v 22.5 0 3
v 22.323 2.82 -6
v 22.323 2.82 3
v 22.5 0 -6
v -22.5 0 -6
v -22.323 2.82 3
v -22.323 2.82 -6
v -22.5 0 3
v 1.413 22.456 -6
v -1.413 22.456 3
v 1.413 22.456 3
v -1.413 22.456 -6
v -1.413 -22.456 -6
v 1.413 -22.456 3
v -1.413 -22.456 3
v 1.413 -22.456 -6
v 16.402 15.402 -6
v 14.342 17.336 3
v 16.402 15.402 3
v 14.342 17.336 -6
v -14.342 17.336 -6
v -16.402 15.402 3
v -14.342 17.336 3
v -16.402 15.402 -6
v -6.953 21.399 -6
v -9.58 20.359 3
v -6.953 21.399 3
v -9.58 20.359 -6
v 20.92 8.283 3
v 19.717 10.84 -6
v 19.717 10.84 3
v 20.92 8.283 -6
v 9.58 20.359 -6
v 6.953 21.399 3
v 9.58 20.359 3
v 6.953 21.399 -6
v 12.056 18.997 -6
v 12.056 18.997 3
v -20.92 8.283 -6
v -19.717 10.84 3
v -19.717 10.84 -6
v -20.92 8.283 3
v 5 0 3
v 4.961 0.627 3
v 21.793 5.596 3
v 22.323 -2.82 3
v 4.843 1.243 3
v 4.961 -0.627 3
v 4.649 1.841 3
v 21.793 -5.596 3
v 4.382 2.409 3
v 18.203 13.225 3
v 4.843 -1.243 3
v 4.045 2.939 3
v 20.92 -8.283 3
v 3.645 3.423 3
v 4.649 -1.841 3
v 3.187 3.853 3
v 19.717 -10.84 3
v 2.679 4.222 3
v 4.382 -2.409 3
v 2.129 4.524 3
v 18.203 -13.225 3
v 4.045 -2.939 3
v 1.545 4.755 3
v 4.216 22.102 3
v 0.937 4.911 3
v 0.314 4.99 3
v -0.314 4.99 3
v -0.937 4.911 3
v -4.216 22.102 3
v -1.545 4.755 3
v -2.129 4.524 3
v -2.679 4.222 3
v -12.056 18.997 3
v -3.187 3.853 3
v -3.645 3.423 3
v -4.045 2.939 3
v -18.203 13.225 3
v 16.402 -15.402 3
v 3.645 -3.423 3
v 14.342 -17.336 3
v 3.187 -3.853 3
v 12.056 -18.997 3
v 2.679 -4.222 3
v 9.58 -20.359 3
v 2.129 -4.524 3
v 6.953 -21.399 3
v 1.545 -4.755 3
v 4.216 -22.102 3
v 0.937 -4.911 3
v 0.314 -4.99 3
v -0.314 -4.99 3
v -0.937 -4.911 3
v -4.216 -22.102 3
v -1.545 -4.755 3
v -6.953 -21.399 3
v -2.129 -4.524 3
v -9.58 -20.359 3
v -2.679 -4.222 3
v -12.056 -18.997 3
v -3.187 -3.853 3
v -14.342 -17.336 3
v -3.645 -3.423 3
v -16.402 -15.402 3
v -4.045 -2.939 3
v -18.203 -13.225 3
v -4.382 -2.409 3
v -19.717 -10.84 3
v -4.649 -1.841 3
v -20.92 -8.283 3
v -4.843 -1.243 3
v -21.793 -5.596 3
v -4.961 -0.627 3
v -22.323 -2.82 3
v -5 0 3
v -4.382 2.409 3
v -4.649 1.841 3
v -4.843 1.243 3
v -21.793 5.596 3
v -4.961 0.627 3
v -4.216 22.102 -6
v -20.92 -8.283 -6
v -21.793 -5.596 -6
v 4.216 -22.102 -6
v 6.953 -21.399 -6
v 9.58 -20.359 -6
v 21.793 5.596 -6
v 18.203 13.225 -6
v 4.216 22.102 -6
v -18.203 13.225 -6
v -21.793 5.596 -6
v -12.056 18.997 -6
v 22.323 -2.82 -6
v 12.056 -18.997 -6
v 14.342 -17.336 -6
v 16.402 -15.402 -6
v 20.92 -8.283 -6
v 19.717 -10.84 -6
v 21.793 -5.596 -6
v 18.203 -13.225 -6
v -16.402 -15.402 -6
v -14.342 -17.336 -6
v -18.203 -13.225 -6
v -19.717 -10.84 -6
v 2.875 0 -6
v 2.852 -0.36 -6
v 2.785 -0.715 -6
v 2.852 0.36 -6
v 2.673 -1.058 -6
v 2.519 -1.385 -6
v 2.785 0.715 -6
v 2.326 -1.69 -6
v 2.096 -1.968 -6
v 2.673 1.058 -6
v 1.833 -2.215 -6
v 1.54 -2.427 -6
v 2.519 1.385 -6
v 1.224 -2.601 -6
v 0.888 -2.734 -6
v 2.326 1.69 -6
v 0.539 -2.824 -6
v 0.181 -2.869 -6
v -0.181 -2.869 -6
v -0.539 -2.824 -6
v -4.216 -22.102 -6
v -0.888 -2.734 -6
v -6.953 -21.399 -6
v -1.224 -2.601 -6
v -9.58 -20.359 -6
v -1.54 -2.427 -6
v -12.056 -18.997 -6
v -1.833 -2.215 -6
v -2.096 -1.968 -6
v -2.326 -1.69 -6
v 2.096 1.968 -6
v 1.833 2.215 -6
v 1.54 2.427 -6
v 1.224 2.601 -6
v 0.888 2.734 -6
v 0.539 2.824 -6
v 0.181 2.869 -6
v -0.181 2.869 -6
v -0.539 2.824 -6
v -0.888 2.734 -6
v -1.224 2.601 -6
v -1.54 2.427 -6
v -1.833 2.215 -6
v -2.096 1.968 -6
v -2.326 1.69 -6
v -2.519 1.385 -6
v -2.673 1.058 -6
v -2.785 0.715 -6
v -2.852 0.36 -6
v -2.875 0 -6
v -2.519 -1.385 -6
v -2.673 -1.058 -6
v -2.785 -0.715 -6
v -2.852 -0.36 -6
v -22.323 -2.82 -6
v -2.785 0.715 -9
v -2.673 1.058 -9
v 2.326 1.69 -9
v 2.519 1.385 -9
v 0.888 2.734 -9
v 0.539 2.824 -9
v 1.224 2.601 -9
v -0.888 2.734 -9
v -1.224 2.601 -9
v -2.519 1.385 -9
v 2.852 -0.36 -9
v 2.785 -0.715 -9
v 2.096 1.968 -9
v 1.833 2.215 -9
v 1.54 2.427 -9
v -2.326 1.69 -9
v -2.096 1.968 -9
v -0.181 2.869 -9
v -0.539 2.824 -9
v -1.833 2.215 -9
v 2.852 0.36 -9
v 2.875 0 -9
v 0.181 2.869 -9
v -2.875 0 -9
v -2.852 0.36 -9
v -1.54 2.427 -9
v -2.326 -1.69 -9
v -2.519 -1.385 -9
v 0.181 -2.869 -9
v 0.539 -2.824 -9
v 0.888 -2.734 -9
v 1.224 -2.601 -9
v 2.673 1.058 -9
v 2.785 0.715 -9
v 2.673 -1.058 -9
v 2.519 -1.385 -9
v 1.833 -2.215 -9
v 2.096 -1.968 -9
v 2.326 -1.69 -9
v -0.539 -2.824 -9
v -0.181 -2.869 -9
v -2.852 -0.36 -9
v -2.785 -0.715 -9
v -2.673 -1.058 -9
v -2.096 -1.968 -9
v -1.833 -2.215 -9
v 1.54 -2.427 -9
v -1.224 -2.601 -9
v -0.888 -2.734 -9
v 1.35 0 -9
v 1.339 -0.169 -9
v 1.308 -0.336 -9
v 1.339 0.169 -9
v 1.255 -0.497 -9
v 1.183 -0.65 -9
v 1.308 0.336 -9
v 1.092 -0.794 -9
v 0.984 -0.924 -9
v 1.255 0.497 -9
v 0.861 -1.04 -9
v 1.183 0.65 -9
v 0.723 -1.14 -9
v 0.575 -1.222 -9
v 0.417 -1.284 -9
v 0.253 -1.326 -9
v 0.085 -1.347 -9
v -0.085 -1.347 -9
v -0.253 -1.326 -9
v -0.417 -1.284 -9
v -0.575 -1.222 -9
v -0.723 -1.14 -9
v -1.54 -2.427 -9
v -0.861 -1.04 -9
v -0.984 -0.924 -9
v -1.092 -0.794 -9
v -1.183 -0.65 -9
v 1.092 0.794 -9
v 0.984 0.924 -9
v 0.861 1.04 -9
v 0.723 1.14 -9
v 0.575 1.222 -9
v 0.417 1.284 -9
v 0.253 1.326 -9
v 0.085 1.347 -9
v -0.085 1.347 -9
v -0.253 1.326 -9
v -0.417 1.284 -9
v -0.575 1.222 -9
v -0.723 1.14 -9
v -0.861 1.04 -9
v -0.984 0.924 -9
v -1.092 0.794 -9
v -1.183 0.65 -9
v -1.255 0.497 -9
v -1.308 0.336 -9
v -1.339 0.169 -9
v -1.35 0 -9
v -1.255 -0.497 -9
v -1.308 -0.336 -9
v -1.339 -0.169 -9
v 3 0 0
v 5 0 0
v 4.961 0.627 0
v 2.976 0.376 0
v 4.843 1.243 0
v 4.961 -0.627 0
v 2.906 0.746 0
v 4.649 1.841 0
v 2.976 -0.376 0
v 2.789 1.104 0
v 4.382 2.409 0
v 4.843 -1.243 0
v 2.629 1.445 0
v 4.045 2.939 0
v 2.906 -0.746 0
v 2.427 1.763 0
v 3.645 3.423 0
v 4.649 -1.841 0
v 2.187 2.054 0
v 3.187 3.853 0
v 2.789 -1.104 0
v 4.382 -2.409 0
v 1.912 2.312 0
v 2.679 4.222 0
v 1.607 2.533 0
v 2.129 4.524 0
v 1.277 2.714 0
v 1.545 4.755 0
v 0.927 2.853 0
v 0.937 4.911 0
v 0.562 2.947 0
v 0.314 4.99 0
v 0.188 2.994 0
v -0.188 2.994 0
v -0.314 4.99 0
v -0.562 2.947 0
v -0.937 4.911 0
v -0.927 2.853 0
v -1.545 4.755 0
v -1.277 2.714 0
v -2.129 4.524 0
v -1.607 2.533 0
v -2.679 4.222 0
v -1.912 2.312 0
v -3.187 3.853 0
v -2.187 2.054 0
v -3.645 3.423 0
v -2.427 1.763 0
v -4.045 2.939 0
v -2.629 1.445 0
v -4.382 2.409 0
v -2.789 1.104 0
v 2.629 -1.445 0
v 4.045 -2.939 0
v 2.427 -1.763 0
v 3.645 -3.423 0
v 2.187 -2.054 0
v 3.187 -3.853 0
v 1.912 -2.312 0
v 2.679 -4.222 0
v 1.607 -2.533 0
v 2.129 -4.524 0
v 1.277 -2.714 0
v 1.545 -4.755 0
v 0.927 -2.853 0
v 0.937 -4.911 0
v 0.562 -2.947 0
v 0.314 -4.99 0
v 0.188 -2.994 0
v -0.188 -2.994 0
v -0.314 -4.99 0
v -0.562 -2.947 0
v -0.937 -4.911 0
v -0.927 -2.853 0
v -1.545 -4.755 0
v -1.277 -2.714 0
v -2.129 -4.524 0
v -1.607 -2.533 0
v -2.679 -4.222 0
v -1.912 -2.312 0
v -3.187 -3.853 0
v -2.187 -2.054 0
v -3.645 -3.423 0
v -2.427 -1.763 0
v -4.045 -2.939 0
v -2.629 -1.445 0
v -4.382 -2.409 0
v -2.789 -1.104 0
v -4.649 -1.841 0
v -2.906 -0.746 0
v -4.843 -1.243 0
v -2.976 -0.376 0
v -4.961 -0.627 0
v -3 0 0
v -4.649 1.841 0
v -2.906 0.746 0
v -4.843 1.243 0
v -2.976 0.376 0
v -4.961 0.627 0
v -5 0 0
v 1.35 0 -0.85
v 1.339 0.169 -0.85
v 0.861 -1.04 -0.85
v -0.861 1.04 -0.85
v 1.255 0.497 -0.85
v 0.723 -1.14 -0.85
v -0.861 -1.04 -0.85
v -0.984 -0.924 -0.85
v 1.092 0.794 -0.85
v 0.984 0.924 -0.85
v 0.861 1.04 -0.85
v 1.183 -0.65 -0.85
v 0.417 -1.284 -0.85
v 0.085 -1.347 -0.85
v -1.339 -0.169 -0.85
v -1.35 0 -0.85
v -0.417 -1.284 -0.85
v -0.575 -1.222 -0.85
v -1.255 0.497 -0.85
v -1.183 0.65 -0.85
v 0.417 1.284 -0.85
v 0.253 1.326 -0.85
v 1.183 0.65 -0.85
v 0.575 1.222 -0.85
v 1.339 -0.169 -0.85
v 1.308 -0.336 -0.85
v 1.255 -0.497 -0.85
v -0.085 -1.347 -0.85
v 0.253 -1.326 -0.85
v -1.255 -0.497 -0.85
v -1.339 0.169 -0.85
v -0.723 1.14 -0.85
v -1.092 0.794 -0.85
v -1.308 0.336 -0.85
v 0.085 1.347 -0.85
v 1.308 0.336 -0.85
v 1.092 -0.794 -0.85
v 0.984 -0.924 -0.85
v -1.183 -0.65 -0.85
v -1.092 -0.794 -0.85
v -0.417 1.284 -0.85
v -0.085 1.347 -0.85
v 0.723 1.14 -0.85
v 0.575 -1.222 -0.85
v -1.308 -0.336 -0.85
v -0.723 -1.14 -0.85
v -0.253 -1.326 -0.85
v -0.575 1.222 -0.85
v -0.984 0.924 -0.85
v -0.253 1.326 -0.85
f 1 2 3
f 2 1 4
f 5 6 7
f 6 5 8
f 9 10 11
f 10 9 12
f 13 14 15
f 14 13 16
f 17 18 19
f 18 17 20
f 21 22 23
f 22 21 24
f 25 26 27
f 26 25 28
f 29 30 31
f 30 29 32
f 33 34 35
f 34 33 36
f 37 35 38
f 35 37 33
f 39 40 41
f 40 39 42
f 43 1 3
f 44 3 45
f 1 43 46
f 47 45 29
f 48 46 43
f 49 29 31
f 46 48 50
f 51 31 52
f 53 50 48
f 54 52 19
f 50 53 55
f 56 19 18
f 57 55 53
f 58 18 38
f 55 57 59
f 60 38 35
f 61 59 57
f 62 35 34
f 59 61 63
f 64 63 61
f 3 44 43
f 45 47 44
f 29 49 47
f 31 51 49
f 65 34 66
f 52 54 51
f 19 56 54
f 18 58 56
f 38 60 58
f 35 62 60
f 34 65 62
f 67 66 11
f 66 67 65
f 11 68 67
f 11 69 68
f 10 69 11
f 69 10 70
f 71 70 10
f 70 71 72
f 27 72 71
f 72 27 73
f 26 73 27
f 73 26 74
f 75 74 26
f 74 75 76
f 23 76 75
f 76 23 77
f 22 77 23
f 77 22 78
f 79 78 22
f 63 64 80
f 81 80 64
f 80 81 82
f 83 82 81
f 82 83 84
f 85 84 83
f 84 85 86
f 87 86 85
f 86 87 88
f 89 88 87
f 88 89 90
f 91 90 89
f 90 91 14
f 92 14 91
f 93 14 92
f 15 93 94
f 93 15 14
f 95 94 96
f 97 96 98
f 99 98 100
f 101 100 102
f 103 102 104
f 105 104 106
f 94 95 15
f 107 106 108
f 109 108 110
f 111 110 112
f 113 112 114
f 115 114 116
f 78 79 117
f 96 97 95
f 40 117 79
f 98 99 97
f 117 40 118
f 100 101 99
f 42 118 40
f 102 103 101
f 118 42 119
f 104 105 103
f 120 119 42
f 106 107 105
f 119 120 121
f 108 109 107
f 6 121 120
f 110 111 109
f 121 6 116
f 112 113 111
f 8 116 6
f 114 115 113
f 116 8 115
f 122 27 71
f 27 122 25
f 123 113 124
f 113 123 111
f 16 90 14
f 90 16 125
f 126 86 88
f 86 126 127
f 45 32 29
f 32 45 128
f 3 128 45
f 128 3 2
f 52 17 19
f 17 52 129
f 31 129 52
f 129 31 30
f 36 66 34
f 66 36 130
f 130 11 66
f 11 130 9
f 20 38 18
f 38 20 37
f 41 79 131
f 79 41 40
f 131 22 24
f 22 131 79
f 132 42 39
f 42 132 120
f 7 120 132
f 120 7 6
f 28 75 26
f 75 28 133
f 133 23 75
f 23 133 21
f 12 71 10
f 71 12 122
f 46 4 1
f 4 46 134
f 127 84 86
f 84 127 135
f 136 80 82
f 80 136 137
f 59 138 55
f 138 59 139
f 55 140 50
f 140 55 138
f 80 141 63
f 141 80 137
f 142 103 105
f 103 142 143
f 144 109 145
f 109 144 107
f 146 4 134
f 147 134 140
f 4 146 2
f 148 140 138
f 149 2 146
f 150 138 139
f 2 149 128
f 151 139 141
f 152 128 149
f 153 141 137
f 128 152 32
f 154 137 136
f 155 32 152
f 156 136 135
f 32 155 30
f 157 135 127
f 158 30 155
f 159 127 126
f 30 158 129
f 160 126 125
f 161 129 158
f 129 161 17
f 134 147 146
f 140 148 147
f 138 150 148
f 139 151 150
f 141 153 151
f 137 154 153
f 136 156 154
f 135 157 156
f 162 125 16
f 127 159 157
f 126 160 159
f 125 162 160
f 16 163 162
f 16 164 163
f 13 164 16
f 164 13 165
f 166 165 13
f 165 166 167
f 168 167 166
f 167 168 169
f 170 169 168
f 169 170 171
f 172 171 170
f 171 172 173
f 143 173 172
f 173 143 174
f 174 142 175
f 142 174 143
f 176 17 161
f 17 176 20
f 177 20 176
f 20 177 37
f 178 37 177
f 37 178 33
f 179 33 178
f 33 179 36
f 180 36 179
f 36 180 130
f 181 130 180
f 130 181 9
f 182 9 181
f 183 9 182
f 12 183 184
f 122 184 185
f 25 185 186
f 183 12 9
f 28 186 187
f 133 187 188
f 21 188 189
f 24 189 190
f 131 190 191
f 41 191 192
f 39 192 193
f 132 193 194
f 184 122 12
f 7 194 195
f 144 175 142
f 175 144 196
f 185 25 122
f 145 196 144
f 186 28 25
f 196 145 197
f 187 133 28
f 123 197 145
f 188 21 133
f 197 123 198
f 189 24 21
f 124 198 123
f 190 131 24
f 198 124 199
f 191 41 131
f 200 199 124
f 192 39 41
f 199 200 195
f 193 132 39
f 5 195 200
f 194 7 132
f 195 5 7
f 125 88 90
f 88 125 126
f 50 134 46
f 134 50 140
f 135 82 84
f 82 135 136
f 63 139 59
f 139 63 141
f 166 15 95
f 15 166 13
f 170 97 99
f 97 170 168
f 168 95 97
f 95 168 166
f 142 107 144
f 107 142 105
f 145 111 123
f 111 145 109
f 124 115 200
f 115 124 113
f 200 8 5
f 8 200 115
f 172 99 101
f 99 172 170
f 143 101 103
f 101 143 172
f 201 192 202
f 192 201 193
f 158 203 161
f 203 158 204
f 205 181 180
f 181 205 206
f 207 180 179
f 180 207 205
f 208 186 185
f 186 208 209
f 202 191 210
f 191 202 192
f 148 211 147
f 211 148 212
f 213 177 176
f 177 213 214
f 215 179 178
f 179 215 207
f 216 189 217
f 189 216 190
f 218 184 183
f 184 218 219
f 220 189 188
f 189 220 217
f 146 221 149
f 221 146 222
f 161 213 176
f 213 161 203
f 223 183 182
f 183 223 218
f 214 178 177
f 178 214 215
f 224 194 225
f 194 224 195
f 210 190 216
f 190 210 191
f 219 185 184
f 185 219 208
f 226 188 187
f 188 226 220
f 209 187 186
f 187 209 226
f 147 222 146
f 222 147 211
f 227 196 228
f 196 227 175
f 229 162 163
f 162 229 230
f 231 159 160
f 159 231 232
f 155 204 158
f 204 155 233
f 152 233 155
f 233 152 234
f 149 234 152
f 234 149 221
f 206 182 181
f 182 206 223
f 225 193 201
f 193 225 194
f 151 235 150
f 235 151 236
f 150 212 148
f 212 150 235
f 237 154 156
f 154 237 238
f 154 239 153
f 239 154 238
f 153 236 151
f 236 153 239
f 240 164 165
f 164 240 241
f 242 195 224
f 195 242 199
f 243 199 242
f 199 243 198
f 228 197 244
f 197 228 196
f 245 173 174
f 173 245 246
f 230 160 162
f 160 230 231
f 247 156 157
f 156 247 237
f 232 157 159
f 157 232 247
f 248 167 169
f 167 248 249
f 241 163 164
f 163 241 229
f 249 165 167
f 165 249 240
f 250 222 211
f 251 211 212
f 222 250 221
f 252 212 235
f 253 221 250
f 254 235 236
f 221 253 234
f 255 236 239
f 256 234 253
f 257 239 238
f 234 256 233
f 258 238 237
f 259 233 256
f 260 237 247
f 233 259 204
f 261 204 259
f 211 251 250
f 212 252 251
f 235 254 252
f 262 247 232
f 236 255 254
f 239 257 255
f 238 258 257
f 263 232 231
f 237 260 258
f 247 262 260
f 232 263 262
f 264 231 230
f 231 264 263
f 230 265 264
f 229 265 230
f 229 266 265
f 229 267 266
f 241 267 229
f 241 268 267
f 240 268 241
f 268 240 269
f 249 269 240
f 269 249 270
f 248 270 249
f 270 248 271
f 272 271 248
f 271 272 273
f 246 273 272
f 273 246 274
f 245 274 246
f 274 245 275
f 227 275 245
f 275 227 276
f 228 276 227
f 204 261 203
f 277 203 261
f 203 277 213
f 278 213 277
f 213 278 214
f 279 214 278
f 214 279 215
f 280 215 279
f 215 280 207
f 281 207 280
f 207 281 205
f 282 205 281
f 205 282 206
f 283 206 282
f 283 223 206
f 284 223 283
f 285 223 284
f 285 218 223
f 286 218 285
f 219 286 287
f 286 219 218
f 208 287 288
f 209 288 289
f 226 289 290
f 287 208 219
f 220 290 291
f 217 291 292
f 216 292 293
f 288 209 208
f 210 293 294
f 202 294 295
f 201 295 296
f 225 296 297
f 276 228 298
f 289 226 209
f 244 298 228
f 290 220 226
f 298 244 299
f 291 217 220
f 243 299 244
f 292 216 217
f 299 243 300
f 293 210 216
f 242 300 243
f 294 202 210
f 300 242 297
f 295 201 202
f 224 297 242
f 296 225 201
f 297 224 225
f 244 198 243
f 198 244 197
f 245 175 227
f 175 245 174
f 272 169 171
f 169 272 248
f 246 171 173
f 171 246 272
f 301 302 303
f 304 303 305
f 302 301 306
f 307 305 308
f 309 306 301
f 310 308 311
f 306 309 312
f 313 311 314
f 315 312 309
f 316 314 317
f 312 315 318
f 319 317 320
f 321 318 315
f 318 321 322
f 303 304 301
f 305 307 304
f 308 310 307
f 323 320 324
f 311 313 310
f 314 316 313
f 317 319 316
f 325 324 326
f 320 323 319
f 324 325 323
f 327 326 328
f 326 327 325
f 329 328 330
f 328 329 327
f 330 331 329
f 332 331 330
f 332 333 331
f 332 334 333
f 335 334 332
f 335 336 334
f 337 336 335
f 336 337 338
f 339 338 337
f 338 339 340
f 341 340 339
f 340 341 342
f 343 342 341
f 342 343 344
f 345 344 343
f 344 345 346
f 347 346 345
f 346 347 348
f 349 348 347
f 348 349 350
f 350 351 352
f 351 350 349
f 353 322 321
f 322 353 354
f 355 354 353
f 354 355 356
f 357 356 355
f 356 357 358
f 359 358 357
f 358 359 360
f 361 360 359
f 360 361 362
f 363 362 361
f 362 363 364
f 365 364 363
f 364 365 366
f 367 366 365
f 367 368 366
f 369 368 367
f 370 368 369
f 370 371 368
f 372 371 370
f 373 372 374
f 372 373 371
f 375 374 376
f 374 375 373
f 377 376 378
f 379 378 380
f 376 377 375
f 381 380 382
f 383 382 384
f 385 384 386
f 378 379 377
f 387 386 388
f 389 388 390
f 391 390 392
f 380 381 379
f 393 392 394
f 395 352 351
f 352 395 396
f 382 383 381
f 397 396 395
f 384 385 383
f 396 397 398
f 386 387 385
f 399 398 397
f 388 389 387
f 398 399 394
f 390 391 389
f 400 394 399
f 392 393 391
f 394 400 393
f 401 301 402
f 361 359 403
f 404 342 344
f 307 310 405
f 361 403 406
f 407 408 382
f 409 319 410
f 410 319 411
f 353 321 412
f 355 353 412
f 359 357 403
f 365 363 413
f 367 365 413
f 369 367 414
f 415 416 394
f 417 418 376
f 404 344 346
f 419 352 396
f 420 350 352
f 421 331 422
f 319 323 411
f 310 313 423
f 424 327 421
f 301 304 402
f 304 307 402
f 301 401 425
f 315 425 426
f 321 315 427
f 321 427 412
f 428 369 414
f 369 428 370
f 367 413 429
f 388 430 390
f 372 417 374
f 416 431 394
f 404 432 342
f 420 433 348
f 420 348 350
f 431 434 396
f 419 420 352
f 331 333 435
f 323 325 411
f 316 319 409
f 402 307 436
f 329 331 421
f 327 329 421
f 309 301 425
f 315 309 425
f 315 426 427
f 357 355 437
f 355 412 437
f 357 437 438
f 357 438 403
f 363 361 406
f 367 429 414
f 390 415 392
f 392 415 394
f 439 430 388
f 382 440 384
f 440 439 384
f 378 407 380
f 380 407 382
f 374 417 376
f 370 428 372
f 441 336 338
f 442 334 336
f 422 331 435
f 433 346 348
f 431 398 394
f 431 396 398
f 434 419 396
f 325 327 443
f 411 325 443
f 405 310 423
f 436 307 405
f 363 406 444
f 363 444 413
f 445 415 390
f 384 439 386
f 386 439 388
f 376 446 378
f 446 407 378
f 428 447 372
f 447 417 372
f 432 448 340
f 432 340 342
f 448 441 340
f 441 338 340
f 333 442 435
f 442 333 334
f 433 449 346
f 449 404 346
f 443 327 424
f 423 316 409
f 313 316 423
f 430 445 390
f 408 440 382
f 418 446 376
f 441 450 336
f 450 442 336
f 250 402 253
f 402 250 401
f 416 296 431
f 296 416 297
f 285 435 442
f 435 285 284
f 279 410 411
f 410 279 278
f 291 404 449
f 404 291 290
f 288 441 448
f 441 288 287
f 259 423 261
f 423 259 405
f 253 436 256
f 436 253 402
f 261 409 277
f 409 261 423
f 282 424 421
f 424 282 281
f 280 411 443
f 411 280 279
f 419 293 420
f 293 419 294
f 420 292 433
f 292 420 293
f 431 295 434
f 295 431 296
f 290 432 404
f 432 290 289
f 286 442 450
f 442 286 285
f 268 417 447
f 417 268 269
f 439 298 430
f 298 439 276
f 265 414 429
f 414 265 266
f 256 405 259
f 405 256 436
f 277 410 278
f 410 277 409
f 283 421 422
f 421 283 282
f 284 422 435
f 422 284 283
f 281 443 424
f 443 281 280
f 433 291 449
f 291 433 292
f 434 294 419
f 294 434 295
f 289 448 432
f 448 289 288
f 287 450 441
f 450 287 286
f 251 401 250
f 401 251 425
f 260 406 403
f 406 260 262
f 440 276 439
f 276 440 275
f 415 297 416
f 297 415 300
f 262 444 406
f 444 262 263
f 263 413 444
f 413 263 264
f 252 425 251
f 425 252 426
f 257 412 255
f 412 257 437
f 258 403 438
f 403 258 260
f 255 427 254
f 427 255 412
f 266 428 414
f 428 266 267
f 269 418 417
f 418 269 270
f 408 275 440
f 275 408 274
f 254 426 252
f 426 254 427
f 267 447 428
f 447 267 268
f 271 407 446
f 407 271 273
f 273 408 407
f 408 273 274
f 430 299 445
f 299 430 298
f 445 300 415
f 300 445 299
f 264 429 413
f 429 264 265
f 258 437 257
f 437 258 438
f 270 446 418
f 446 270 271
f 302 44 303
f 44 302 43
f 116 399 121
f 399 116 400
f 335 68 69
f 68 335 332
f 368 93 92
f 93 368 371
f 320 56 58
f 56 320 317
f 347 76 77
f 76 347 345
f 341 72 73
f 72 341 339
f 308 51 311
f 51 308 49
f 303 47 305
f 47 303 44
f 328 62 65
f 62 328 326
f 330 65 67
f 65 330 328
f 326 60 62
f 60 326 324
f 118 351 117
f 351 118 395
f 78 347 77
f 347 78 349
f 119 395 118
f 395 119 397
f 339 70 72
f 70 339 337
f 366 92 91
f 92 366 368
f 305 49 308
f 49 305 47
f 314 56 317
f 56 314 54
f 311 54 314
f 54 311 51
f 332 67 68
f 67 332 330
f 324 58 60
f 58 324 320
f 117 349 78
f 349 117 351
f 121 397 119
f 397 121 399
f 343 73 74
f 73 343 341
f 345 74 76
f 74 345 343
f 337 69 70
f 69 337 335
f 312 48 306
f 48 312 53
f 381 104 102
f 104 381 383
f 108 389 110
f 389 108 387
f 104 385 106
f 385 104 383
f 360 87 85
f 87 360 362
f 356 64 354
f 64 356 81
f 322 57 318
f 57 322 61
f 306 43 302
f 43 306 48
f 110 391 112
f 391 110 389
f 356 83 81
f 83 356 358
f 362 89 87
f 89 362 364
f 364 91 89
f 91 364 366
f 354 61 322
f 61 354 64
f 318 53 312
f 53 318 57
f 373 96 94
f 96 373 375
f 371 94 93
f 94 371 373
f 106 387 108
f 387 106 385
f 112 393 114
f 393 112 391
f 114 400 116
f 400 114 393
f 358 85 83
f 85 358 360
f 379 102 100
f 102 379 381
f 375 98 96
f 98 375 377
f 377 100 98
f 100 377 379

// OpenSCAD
$fn = 50;


difference() {
	union() {
		translate(v = [0, 0, -6.0000000000]) {
			cylinder(h = 9, r = 22.5000000000);
		}
		#translate(v = [0, 0, -9.0000000000]) {
			cylinder(h = 9, r = 2.8750000000);
		}
	}
	union() {
		translate(v = [0, 0, 0]) {
			rotate(a = [0, 0, 0]) {
				difference() {
					union() {
						translate(v = [0, 0, -9.0000000000]) {
							cylinder(h = 9, r = 1.0000000000);
						}
						translate(v = [0, 0, -0.8500000000]) {
							cylinder(h = 0.8500000000, r1 = 1.3500000000, r2 = 3.0000000000);
						}
						translate(v = [0, 0, -9.0000000000]) {
							cylinder(h = 9, r = 1.3500000000);
						}
						translate(v = [0, 0, -9.0000000000]) {
							cylinder(h = 9, r = 1.0000000000);
						}
					}
					union();
				}
			}
		}
		#cylinder(h = 3, r = 5.0000000000);
	}
}
